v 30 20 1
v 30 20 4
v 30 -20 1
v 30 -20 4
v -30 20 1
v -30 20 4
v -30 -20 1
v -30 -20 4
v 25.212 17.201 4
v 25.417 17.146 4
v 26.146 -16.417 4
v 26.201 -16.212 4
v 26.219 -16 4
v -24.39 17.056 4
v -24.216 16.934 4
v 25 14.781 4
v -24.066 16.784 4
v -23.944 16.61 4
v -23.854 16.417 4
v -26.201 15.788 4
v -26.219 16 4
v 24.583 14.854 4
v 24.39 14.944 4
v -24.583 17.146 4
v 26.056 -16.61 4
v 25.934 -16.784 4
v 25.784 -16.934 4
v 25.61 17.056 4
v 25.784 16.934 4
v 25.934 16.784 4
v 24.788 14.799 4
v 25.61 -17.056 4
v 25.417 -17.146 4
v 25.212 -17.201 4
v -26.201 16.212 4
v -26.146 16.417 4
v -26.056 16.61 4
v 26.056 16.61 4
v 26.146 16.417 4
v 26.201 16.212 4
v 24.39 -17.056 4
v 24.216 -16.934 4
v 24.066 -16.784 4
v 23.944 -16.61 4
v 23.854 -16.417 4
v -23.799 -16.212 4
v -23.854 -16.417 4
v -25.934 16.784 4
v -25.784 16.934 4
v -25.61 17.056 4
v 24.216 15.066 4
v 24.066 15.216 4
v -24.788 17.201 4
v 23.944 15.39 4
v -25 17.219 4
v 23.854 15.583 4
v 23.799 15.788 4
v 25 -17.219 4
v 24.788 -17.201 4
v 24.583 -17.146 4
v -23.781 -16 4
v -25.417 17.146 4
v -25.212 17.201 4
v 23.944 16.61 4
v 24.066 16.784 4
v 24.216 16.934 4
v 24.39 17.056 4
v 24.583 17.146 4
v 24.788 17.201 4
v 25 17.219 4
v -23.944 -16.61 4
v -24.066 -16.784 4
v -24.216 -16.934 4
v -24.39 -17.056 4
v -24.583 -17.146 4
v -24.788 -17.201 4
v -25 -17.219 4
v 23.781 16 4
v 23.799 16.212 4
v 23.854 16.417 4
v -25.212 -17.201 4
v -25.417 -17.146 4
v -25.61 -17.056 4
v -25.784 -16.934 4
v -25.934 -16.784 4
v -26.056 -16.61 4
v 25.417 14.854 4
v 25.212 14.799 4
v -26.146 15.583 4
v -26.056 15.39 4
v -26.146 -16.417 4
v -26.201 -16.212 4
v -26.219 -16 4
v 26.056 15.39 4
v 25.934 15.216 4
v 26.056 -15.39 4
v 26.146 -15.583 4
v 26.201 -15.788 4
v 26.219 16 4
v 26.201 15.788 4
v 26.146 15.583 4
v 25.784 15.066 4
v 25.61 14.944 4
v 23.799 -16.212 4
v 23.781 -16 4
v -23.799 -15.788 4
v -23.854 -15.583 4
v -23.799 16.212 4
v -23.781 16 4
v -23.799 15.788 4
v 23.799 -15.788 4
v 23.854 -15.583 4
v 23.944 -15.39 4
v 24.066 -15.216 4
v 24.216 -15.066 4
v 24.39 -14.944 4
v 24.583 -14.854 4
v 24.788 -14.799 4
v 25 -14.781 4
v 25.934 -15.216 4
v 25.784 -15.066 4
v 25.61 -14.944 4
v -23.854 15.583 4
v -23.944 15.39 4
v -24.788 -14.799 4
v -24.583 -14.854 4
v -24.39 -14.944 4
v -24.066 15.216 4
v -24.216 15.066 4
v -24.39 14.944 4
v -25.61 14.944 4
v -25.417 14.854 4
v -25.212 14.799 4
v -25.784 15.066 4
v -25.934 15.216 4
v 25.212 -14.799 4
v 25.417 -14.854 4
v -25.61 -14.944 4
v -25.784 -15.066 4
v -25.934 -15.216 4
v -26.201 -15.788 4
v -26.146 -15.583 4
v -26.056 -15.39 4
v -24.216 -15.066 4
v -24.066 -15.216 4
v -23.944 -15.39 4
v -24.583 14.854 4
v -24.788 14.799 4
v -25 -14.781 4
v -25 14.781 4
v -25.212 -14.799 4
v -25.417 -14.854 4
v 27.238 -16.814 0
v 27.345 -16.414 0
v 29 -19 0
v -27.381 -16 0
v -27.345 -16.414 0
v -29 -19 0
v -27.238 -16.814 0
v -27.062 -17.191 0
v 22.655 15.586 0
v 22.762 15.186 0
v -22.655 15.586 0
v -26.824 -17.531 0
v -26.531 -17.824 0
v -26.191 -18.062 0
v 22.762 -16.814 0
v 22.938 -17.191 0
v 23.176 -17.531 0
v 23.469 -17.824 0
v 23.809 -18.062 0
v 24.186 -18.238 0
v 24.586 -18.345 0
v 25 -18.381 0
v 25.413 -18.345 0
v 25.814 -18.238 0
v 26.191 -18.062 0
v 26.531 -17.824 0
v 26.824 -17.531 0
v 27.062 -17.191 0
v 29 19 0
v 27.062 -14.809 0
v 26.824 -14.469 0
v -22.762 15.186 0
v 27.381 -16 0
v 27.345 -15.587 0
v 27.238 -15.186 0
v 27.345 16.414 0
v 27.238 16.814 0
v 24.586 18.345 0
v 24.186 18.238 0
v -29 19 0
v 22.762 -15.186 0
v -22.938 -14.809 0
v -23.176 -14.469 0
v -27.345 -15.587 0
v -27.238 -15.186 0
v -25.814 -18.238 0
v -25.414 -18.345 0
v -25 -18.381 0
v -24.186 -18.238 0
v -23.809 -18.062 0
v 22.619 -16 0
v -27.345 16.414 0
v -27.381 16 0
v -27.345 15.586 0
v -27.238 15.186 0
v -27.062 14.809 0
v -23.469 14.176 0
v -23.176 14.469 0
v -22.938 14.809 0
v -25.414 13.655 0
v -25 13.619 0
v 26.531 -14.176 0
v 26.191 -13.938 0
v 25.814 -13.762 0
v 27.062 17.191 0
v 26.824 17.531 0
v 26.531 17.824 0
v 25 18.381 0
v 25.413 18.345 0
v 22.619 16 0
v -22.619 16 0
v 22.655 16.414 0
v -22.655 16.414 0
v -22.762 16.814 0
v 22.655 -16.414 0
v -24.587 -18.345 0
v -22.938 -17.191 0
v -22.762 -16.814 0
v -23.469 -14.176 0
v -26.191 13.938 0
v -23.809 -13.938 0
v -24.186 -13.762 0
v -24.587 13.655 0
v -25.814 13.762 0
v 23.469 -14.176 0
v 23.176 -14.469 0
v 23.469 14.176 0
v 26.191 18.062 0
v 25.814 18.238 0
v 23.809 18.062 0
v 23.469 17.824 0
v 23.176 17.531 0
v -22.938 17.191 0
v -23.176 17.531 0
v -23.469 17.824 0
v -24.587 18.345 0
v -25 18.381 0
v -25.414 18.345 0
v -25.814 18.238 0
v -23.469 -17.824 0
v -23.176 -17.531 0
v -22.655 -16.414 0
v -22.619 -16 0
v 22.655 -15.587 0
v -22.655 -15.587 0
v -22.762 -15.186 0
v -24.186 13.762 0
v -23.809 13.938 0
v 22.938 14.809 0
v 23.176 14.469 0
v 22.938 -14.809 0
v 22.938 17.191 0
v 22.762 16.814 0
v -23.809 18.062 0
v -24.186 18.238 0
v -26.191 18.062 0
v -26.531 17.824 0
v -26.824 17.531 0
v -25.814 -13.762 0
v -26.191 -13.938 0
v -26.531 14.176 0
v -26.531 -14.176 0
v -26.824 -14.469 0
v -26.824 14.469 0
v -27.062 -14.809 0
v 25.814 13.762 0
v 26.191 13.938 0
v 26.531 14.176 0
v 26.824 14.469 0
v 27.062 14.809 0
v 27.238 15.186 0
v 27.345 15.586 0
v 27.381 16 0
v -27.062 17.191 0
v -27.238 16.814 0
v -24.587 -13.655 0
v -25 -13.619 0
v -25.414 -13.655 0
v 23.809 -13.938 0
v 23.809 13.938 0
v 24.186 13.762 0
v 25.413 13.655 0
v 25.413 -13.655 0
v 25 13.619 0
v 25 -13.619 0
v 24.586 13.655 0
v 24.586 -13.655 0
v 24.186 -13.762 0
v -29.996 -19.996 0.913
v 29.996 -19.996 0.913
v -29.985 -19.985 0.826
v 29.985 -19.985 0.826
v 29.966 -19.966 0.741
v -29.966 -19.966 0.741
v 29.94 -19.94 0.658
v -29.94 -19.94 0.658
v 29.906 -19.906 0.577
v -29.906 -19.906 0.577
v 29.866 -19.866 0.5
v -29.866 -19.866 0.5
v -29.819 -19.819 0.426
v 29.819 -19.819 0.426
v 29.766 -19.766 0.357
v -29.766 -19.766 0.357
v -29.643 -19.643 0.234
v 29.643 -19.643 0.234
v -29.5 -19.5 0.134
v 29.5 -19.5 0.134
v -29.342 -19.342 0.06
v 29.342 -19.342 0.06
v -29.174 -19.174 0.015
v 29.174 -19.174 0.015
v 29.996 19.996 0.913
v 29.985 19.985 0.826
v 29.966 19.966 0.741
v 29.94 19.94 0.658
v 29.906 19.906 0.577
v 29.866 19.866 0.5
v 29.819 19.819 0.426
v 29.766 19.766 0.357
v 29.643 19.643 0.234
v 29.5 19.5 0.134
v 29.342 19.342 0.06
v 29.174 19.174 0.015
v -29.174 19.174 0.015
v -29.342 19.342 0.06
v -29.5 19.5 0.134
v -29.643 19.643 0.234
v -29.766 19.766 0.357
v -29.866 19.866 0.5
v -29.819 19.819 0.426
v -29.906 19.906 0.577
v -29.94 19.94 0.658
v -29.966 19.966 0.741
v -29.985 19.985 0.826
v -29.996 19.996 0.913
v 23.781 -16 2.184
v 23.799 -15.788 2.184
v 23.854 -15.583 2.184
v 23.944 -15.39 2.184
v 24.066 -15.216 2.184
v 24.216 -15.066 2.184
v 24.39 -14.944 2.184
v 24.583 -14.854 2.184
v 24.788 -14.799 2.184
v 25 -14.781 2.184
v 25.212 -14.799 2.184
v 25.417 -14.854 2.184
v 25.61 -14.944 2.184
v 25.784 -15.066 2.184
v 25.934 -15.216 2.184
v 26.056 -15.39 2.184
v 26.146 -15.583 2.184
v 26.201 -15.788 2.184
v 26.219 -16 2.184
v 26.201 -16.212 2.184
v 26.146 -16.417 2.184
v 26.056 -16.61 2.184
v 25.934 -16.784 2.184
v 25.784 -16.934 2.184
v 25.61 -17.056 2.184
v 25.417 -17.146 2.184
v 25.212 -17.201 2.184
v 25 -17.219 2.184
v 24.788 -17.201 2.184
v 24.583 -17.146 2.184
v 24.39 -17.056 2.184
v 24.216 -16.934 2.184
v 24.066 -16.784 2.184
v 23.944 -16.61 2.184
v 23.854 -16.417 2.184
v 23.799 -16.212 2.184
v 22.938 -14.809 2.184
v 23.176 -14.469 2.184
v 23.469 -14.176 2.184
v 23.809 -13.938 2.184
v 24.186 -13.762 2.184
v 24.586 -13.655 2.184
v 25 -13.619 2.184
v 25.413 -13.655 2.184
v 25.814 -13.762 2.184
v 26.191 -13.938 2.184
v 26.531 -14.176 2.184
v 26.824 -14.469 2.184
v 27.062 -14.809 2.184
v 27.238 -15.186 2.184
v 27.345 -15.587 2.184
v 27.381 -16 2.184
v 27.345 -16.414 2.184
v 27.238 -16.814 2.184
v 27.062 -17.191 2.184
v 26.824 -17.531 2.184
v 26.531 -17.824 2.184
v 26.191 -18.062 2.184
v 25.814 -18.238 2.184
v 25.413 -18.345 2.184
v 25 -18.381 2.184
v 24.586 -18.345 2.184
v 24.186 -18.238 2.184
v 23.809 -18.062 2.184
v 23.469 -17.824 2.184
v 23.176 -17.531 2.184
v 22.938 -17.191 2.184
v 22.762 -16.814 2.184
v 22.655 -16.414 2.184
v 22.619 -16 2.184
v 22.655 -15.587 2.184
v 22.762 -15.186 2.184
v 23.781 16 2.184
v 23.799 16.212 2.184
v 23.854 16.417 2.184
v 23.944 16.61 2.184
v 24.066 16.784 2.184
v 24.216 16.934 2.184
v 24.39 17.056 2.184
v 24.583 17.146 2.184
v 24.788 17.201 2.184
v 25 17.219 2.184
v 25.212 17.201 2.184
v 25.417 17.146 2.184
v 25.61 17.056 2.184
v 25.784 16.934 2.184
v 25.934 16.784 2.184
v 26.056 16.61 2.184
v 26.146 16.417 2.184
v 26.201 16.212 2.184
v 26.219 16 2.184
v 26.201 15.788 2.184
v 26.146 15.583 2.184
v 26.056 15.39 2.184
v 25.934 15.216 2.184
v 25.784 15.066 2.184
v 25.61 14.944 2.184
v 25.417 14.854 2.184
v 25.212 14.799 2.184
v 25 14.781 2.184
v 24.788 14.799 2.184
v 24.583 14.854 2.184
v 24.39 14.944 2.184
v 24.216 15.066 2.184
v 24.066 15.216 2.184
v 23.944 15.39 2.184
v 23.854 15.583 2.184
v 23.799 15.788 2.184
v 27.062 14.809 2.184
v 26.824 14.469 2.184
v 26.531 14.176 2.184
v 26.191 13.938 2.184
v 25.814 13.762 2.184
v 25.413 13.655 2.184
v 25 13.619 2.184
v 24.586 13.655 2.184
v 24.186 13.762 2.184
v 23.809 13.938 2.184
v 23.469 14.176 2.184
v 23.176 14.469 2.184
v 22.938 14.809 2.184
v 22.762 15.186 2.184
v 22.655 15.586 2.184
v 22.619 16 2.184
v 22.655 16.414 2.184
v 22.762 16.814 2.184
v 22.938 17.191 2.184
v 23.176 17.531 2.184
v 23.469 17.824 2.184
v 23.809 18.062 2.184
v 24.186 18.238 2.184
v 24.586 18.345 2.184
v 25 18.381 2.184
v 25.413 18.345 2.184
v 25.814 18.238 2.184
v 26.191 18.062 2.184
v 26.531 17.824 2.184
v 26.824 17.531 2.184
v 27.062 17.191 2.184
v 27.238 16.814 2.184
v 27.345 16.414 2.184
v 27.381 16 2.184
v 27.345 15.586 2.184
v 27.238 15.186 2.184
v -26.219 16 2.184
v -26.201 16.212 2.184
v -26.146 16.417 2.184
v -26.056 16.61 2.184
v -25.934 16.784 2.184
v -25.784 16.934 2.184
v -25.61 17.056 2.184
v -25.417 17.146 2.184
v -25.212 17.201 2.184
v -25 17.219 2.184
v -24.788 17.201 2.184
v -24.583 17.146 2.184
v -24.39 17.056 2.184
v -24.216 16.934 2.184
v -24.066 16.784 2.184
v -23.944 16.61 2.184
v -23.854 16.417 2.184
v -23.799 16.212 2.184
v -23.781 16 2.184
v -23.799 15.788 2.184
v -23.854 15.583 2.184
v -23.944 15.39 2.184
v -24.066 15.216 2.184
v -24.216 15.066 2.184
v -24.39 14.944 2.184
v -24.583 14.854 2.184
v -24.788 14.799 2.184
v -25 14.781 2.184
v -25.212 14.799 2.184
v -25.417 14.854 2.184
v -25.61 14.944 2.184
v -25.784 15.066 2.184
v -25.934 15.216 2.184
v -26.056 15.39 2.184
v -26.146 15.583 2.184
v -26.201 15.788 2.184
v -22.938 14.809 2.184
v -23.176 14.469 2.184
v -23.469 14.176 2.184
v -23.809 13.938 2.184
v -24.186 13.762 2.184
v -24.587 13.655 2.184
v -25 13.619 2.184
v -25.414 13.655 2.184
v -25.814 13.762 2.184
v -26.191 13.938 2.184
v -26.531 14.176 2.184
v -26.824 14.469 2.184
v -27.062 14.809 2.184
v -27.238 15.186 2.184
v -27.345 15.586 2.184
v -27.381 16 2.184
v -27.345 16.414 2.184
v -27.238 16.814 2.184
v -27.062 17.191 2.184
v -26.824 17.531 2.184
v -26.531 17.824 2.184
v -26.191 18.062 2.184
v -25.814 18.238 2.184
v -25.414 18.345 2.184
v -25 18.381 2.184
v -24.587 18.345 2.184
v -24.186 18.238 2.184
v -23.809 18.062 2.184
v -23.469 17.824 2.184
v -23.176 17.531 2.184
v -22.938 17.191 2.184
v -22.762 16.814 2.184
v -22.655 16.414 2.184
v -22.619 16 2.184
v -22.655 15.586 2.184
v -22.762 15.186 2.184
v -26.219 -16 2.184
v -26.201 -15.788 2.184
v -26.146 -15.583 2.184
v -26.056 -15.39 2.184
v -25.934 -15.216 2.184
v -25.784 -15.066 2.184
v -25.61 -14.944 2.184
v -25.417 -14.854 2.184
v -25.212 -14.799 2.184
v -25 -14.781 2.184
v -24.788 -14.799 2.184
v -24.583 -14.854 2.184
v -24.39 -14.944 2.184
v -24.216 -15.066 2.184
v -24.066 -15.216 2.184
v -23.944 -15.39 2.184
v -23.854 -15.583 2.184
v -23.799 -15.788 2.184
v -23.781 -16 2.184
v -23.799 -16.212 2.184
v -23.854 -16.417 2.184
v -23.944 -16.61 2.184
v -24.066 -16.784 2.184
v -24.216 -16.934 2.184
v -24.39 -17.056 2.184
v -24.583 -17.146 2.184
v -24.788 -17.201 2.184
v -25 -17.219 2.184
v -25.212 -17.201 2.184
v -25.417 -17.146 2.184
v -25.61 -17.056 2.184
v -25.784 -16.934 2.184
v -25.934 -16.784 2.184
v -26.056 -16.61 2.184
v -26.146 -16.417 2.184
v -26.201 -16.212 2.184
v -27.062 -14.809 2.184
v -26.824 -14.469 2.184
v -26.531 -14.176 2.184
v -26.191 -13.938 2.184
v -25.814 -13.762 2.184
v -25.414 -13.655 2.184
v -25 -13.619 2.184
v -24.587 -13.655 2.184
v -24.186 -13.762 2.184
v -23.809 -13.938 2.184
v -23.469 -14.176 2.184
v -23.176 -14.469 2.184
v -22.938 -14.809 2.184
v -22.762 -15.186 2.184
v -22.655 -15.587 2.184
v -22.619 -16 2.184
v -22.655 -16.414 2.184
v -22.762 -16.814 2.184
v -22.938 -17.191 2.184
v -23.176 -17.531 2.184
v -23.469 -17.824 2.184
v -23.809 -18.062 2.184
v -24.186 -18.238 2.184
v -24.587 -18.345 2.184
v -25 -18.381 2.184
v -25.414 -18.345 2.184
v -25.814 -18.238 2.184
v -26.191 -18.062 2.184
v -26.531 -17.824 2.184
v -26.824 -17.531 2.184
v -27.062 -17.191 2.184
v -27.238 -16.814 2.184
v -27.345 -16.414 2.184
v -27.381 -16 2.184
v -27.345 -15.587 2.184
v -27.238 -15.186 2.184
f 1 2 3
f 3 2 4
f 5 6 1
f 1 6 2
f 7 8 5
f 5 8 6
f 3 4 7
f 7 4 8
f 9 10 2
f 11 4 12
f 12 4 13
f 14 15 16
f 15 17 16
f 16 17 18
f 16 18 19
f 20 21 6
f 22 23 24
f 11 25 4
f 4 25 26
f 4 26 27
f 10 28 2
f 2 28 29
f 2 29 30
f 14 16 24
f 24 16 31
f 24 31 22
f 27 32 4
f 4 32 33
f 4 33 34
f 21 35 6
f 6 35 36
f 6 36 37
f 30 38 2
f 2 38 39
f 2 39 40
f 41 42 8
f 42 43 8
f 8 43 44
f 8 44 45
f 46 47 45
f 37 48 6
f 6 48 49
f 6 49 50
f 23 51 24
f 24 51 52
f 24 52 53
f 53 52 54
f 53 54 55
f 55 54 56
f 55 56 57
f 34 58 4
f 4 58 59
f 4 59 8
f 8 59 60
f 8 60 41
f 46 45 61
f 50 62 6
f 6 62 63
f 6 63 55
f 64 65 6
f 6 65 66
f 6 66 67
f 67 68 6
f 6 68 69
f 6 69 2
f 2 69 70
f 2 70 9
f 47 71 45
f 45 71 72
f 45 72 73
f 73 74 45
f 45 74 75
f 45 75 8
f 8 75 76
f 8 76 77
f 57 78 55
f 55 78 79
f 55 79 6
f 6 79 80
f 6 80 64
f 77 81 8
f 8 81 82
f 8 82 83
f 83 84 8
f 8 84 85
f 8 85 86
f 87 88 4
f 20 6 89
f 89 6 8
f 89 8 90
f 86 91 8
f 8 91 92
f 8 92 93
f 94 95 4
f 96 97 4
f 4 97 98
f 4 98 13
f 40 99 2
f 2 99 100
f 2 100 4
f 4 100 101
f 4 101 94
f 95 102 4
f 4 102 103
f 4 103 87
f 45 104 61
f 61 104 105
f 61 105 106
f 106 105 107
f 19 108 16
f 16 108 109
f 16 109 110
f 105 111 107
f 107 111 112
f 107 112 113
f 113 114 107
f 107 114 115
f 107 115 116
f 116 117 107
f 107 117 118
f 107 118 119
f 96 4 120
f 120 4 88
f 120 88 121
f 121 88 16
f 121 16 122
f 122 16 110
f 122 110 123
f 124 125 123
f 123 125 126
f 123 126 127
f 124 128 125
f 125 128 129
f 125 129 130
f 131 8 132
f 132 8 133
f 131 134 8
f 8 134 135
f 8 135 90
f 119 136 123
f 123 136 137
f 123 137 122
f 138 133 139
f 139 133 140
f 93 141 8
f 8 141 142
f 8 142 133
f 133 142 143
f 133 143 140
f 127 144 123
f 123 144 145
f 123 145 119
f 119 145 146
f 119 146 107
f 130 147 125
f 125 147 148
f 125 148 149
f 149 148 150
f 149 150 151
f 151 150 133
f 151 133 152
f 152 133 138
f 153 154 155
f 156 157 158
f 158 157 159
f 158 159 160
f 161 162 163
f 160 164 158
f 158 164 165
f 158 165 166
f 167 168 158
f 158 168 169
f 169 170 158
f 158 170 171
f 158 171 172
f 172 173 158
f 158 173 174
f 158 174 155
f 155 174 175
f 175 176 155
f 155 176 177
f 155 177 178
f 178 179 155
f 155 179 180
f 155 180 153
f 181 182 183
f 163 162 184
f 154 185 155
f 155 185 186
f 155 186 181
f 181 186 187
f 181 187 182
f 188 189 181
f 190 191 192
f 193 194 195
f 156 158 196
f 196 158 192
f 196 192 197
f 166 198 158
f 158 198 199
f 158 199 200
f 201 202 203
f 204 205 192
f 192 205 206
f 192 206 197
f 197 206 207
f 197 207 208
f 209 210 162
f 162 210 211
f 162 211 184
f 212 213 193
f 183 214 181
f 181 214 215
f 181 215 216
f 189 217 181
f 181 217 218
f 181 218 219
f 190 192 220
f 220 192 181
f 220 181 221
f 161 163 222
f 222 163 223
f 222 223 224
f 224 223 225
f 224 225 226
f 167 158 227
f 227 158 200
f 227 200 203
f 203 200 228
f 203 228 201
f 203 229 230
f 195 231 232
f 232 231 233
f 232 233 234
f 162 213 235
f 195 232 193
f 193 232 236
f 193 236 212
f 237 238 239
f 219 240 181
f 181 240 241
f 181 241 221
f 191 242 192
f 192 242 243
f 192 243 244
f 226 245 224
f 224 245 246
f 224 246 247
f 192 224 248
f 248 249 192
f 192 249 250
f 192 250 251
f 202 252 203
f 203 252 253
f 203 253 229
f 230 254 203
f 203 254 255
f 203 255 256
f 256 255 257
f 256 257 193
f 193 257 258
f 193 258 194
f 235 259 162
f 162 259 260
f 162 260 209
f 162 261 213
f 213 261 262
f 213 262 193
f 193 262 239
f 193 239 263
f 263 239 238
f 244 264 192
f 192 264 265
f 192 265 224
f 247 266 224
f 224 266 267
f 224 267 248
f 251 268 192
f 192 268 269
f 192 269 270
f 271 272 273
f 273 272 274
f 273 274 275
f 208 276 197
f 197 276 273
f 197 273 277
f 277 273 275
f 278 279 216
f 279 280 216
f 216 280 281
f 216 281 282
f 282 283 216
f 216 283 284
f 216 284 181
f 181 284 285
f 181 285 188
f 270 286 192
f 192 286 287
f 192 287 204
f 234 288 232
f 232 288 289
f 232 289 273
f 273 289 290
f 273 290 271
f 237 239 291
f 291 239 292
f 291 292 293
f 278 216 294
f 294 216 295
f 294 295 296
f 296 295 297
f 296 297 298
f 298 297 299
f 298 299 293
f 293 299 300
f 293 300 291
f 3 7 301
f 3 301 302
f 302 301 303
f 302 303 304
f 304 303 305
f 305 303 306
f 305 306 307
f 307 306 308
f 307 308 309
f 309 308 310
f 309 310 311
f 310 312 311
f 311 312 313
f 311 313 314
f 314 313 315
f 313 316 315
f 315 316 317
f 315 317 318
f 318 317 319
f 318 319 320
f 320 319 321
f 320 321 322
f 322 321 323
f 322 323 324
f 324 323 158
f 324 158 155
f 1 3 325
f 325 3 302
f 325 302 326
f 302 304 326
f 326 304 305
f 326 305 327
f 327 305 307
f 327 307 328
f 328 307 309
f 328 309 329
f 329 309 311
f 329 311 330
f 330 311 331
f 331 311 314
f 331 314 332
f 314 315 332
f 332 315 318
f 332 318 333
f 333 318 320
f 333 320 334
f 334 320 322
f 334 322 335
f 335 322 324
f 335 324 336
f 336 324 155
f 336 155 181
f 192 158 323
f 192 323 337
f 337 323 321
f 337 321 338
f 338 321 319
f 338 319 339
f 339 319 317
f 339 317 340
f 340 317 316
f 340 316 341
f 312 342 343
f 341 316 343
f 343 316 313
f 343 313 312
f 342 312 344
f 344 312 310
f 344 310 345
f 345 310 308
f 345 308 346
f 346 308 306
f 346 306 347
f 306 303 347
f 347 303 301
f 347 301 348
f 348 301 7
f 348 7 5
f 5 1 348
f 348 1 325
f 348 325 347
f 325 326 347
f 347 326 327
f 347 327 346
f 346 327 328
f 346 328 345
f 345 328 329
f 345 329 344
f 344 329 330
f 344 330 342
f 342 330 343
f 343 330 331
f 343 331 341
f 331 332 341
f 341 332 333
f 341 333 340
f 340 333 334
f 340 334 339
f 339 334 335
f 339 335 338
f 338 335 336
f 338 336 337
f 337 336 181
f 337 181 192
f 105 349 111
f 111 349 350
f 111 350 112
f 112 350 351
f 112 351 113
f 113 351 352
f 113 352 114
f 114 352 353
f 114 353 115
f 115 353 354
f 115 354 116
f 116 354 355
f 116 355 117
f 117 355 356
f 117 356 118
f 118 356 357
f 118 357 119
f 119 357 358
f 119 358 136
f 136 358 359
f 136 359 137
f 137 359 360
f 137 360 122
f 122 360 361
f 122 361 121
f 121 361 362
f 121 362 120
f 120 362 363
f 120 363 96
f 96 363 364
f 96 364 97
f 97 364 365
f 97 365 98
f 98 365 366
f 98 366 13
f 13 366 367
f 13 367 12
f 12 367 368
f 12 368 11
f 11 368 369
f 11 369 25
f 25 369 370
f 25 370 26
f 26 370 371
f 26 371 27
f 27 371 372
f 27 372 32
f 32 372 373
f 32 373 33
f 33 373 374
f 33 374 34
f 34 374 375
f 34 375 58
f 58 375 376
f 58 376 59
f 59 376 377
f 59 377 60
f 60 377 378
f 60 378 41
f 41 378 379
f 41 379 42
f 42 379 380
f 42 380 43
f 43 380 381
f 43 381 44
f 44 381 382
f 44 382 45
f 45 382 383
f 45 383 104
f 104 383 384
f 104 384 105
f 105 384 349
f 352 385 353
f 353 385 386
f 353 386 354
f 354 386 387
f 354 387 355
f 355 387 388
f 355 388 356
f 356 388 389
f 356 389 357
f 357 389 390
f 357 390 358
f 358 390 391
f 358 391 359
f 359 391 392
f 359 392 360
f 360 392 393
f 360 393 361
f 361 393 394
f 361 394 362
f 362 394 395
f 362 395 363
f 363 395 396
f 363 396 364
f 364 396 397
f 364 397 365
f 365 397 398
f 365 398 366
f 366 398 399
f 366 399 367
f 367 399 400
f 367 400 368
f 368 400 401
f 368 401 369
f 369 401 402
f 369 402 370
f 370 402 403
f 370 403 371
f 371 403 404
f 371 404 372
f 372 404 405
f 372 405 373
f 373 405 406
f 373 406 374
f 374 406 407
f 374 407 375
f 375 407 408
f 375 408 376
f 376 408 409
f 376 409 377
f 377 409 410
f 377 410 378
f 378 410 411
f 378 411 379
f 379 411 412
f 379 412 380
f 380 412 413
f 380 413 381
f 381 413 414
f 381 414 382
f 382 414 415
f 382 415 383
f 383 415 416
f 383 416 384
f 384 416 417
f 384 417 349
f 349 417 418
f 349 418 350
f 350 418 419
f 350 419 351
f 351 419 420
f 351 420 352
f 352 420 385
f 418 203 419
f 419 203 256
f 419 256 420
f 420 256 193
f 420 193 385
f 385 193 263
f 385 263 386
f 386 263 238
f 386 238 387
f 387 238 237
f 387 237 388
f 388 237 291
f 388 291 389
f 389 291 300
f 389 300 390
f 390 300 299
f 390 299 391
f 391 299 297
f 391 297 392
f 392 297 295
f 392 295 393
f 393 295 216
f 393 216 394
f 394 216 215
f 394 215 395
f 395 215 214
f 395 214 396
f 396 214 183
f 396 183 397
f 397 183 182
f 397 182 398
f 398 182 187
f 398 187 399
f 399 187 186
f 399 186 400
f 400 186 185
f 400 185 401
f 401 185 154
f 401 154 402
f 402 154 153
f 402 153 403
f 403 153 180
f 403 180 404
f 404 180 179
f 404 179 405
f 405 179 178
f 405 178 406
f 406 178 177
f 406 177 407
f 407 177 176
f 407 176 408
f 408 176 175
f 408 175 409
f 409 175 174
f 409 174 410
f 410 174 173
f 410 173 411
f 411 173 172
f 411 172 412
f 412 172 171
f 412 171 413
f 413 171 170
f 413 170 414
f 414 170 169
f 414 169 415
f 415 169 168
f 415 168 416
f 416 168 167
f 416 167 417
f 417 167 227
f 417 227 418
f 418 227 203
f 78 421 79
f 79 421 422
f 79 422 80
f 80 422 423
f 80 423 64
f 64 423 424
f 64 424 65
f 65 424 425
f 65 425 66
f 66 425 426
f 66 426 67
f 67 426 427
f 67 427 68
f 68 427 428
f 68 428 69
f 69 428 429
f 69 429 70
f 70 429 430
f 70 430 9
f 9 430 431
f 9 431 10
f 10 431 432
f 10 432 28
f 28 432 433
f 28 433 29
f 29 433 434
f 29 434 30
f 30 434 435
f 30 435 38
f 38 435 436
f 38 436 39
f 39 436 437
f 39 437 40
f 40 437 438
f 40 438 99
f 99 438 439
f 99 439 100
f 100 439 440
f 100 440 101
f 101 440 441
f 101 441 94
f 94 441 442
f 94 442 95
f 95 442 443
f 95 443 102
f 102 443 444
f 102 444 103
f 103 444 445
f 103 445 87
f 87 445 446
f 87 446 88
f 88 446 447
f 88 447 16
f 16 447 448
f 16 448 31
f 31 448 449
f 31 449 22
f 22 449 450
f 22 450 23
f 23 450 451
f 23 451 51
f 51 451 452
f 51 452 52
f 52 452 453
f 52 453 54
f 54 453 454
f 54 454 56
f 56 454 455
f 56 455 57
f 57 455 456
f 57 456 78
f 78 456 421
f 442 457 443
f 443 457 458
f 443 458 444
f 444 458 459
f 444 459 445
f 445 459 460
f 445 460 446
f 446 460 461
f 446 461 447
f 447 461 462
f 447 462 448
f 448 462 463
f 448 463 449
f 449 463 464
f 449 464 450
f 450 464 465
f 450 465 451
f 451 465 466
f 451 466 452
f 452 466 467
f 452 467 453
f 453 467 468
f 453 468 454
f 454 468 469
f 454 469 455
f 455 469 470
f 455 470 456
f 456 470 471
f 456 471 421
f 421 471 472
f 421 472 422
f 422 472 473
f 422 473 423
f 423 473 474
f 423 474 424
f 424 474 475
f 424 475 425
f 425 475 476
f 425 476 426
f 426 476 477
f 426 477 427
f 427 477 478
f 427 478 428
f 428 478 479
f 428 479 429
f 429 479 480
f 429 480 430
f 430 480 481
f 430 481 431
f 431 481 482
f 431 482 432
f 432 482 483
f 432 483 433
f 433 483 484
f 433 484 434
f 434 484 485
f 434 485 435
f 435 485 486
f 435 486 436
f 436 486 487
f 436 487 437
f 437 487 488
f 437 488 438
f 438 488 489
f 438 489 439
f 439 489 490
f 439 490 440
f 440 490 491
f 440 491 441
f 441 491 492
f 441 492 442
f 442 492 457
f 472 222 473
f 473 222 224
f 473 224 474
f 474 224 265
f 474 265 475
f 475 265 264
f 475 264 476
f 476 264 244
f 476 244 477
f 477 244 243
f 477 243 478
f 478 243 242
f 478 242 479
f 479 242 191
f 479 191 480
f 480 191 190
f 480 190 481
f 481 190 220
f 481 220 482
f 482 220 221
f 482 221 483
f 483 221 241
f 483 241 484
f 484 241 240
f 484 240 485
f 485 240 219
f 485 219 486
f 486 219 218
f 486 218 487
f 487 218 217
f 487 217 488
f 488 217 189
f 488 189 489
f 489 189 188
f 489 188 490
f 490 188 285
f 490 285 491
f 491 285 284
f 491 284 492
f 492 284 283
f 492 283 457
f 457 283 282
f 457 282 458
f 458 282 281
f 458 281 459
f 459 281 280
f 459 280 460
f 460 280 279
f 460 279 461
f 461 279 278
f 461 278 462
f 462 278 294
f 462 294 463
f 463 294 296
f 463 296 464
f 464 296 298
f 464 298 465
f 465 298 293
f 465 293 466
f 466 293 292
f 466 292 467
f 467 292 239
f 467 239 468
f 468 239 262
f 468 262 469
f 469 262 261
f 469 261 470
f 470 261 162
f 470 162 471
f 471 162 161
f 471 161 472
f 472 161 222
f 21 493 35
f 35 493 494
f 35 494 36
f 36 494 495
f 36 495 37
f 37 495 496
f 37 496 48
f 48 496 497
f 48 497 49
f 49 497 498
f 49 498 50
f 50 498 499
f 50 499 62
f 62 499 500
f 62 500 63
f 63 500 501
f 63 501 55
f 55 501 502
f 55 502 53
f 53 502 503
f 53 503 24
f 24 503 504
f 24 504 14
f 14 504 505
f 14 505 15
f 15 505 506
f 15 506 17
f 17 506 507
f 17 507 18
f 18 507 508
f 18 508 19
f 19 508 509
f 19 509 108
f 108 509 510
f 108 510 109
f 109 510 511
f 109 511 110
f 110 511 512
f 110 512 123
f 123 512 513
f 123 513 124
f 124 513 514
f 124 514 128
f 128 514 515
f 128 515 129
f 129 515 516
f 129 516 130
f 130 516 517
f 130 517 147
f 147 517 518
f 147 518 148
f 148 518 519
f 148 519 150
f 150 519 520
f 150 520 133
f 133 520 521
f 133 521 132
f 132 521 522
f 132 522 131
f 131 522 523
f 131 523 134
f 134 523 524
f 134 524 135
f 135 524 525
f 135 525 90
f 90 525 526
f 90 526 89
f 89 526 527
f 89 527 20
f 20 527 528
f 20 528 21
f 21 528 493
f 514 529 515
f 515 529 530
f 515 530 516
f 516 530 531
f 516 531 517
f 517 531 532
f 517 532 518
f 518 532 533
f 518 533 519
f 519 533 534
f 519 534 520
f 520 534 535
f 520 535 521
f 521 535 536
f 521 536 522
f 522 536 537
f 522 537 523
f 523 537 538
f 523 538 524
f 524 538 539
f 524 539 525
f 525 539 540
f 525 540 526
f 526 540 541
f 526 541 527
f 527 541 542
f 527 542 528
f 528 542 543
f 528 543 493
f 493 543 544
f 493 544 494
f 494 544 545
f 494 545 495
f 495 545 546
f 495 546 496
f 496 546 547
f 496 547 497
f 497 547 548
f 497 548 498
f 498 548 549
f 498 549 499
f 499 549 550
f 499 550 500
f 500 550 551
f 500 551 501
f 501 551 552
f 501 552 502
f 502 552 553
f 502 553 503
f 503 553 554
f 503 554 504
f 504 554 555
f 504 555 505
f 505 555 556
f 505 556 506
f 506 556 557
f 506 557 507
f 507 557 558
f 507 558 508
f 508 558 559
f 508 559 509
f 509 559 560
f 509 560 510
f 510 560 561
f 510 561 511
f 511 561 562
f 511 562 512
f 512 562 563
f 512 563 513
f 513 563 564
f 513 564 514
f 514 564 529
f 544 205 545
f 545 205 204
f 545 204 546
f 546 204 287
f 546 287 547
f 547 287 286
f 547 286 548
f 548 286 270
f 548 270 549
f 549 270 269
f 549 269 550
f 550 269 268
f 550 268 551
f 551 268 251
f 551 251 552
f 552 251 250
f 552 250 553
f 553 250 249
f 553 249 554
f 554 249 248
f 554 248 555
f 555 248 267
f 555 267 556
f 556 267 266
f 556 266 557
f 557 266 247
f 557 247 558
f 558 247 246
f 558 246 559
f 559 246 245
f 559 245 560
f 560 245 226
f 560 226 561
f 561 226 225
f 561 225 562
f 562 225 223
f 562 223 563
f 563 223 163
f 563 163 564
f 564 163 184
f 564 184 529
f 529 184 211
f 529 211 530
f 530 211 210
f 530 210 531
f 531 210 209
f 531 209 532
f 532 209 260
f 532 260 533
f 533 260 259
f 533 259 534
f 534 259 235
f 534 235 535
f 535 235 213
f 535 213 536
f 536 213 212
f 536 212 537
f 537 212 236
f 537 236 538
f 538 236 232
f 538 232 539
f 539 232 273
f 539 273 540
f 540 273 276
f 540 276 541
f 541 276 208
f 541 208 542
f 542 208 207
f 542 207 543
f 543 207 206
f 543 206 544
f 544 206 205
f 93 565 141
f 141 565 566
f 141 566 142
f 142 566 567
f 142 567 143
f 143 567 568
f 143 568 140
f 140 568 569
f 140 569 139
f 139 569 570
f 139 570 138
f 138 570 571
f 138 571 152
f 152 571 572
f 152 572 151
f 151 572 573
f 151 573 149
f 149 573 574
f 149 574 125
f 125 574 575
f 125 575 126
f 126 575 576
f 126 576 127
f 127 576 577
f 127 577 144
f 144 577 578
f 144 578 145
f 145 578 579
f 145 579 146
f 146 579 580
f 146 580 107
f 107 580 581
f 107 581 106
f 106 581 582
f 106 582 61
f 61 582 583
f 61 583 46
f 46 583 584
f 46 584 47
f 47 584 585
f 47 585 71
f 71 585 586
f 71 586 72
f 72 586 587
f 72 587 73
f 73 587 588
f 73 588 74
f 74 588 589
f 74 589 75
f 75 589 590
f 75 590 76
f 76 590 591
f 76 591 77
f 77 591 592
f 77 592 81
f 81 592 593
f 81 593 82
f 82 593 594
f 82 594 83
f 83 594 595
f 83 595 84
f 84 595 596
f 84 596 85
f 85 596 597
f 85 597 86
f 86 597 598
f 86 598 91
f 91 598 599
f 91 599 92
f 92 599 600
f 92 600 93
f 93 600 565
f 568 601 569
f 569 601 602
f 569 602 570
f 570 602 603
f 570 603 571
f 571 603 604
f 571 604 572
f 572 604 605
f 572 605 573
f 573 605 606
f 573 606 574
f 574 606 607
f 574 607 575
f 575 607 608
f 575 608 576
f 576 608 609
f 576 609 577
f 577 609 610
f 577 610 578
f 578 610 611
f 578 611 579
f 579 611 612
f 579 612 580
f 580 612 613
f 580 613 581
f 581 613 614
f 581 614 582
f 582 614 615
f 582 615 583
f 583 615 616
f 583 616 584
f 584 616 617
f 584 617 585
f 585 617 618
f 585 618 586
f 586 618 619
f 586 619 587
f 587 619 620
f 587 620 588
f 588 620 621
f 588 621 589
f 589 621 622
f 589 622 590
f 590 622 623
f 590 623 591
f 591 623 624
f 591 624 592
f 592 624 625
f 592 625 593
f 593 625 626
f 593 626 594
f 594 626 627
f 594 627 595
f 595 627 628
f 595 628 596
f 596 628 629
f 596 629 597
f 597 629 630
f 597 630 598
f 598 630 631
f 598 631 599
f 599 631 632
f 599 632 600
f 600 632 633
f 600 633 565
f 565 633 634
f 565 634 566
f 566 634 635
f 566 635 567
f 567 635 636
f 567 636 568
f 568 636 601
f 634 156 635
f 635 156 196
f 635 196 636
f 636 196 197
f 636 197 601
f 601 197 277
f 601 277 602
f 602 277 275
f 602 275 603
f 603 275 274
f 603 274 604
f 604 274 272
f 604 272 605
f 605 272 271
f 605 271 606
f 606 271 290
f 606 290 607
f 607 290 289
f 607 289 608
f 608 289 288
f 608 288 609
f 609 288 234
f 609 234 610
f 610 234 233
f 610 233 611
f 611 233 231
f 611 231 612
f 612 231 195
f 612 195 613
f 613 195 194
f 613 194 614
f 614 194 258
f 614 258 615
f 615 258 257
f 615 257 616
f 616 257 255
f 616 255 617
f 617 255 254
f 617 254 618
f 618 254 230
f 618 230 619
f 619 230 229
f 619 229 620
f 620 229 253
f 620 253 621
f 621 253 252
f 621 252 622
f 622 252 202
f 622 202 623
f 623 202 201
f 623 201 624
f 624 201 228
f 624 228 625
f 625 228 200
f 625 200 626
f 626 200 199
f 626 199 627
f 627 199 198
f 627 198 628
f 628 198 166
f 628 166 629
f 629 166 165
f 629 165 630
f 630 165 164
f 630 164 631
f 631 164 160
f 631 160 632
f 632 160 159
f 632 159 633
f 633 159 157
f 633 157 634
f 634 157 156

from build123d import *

# Parameters (mm, degrees)
SKETCH1_W                                      = 60
SKETCH1_H                                      = 40
BOSS_EXTRUDE1_DEPTH                            = 4
FILLET1_R                                      = 1
CBORE_FOR_2_SOCKET_HEAD_CAP_SCREW1_D           = 2.4384
CBORE_FOR_2_SOCKET_HEAD_CAP_SCREW1_DEPTH       = 15
CBORE_FOR_2_SOCKET_HEAD_CAP_SCREW1_CBORE_D     = 4.7625
CBORE_FOR_2_SOCKET_HEAD_CAP_SCREW1_CBORE_DEPTH = 2.1844
CBORE_FOR_2_SOCKET_HEAD_CAP_SCREW1_TIP         = 0.732569267


with BuildPart() as part:
    # Sketch1 → Boss-Extrude1 (new body)
    with BuildSketch(Plane.XY):
        Rectangle(SKETCH1_W, SKETCH1_H)
    extrude(amount=BOSS_EXTRUDE1_DEPTH)

    # Fillet1
    fillet1_edges = [part.edges().sort_by_distance(p)[0] for p in [
        (0, -20, 0),
        (-30, 0, 0),
        (0, 20, 0),
        (30, 0, 0),
    ]]
    fillet(fillet1_edges, radius=FILLET1_R)

    # CBORE for #2 Socket Head Cap Screw1
    with Locations(Plane(origin=(-25, -16, 0), x_dir=(-1, 0, 0), z_dir=(0, 0, -1))):
        with Locations((0, 0), (0, 32), (-50, 32), (-50, 0)):
            CounterBoreHole(CBORE_FOR_2_SOCKET_HEAD_CAP_SCREW1_D / 2, CBORE_FOR_2_SOCKET_HEAD_CAP_SCREW1_CBORE_D / 2, CBORE_FOR_2_SOCKET_HEAD_CAP_SCREW1_CBORE_DEPTH, depth=CBORE_FOR_2_SOCKET_HEAD_CAP_SCREW1_DEPTH)
            with Locations((0, 0, -(CBORE_FOR_2_SOCKET_HEAD_CAP_SCREW1_DEPTH + CBORE_FOR_2_SOCKET_HEAD_CAP_SCREW1_TIP / 2))):  # 118° drill point
                Cone(0, CBORE_FOR_2_SOCKET_HEAD_CAP_SCREW1_D / 2, CBORE_FOR_2_SOCKET_HEAD_CAP_SCREW1_TIP, mode=Mode.SUBTRACT)


solid = part.part
